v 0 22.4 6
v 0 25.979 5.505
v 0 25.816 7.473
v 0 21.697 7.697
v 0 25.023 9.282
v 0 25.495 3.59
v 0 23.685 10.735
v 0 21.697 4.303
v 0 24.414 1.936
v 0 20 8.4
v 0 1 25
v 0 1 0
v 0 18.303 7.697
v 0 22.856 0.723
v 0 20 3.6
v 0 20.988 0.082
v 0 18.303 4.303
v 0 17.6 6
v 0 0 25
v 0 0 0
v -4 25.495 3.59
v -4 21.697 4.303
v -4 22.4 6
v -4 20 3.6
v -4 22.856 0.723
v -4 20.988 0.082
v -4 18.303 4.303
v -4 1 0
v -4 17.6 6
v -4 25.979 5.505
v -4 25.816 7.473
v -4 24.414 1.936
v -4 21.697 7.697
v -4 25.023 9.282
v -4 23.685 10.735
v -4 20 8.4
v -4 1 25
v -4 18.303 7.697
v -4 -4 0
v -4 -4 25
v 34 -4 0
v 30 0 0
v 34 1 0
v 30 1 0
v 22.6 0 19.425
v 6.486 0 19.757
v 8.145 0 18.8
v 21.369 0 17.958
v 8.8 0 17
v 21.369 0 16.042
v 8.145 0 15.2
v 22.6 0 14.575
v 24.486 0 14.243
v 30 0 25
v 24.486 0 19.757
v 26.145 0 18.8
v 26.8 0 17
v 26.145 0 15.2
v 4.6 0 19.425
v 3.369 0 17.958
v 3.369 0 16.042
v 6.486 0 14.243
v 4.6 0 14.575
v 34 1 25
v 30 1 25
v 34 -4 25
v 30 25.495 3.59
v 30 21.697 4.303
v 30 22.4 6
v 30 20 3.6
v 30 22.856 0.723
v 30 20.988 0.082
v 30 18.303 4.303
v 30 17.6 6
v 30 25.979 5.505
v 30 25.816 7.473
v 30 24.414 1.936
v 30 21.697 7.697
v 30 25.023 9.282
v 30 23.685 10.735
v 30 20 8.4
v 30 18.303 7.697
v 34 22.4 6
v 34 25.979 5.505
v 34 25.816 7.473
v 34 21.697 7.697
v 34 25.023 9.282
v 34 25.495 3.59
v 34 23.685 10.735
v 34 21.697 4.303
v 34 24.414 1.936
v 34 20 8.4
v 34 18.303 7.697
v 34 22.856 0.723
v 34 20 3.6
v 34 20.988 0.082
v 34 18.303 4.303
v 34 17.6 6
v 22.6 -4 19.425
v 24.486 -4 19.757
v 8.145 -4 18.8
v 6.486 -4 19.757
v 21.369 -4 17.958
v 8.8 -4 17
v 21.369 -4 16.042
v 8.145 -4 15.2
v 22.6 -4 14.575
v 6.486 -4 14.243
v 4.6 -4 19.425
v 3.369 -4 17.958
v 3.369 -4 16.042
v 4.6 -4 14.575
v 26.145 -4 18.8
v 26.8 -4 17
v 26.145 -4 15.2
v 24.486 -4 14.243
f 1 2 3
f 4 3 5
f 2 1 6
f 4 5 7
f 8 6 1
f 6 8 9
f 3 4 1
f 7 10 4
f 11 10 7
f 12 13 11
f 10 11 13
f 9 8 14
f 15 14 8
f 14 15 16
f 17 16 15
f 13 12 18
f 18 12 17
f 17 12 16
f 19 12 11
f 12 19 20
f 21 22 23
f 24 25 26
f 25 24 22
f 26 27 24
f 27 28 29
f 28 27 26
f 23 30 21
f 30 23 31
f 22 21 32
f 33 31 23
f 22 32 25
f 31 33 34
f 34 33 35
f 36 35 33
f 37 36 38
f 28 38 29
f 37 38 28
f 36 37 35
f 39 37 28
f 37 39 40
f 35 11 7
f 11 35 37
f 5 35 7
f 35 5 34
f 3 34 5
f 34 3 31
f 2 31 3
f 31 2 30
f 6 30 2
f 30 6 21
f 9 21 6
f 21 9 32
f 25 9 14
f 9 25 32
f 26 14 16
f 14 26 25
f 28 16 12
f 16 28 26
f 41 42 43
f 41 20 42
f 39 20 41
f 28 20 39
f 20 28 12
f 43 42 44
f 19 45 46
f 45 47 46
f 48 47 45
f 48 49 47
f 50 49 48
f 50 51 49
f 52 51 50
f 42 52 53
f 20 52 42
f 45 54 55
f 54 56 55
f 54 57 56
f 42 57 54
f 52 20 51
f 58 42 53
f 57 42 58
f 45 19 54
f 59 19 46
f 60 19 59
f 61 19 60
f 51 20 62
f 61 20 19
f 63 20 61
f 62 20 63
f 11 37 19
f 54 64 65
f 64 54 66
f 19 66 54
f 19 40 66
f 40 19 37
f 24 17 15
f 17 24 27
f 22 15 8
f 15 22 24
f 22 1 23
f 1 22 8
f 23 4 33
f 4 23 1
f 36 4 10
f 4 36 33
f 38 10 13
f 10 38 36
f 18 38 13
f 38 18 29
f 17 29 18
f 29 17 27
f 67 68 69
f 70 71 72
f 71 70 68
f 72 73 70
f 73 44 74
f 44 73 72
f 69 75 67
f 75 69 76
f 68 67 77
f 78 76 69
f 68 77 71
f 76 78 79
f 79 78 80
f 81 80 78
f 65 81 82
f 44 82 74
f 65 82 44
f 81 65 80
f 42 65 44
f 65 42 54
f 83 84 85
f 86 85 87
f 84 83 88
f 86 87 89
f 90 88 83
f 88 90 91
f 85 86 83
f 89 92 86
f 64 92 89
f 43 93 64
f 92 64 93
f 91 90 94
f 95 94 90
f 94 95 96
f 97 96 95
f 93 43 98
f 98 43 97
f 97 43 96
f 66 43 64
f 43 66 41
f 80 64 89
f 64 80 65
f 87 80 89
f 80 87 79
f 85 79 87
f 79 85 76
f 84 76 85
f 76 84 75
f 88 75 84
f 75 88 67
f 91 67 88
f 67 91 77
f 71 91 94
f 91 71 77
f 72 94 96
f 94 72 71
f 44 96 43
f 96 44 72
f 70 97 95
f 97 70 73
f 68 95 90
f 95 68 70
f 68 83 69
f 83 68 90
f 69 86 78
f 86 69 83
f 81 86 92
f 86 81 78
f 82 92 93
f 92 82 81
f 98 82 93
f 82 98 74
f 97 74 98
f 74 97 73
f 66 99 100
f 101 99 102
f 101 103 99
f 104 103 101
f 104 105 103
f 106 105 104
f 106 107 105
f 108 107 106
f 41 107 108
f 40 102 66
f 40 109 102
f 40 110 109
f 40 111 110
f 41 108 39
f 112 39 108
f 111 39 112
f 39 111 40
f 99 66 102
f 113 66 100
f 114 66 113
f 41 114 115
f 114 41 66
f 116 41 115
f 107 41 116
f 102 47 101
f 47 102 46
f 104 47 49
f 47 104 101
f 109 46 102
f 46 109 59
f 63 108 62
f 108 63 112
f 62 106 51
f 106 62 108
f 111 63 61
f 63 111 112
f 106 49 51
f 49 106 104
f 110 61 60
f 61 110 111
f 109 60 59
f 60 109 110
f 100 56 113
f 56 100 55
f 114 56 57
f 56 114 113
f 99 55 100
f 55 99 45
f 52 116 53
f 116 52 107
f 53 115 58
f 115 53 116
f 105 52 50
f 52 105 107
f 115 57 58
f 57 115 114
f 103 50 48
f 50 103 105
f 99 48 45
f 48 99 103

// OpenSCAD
difference(){
    union(){
        rotate([0,-90,0]) riser();
        translate([30,0,0]) 
                mirror([1,0,0]) rotate([0,-90,0]) riser();
        translate([-4,-4,0]) cube([38,4,25]);
    }
    translate([6,1,17]) rotate([90,0,0]) cylinder(r=2.8,h=6);
    translate([24,1,17]) rotate([90,0,0]) cylinder(r=2.8,h=6);
}

module riser() linear_extrude(height=4) difference(){
    hull(){
        square([25,1]);
        translate([6,20]) circle(6);
    }
    translate([6,20]) circle(2.4);
}
